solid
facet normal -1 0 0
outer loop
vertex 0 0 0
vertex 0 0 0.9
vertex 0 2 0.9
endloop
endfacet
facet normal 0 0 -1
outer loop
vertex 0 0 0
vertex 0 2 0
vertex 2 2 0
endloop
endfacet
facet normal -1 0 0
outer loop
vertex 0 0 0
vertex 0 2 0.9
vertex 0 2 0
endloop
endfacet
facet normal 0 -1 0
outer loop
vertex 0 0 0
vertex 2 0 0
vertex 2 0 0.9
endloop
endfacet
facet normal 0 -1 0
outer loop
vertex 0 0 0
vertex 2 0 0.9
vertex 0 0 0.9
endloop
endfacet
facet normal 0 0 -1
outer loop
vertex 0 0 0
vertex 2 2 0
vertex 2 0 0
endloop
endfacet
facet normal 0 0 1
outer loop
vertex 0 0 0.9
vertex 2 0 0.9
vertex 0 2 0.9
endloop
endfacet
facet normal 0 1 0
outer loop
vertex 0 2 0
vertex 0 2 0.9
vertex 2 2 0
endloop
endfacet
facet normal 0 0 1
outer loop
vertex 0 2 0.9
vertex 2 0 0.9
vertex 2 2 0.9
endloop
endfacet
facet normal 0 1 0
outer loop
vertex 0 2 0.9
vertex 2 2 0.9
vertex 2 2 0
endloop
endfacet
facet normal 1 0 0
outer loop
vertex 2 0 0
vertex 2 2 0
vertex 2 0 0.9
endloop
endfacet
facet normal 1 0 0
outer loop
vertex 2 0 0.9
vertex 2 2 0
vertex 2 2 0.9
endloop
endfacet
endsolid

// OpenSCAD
/* Warning, this is a very basic generator with a lot of approximation 
input data : [VDFN, 3SW, 2x2x0.9mm, 6, , A, C04-00571A]
generated by com.zoubworld.electronics.cad.model3d.Basic
Date : Sun Feb 15 10:50:49 CET 2026
*/

//body
color("black")
translate([0,0,0])
cube([2.0,2.0,0.9], center=false);
